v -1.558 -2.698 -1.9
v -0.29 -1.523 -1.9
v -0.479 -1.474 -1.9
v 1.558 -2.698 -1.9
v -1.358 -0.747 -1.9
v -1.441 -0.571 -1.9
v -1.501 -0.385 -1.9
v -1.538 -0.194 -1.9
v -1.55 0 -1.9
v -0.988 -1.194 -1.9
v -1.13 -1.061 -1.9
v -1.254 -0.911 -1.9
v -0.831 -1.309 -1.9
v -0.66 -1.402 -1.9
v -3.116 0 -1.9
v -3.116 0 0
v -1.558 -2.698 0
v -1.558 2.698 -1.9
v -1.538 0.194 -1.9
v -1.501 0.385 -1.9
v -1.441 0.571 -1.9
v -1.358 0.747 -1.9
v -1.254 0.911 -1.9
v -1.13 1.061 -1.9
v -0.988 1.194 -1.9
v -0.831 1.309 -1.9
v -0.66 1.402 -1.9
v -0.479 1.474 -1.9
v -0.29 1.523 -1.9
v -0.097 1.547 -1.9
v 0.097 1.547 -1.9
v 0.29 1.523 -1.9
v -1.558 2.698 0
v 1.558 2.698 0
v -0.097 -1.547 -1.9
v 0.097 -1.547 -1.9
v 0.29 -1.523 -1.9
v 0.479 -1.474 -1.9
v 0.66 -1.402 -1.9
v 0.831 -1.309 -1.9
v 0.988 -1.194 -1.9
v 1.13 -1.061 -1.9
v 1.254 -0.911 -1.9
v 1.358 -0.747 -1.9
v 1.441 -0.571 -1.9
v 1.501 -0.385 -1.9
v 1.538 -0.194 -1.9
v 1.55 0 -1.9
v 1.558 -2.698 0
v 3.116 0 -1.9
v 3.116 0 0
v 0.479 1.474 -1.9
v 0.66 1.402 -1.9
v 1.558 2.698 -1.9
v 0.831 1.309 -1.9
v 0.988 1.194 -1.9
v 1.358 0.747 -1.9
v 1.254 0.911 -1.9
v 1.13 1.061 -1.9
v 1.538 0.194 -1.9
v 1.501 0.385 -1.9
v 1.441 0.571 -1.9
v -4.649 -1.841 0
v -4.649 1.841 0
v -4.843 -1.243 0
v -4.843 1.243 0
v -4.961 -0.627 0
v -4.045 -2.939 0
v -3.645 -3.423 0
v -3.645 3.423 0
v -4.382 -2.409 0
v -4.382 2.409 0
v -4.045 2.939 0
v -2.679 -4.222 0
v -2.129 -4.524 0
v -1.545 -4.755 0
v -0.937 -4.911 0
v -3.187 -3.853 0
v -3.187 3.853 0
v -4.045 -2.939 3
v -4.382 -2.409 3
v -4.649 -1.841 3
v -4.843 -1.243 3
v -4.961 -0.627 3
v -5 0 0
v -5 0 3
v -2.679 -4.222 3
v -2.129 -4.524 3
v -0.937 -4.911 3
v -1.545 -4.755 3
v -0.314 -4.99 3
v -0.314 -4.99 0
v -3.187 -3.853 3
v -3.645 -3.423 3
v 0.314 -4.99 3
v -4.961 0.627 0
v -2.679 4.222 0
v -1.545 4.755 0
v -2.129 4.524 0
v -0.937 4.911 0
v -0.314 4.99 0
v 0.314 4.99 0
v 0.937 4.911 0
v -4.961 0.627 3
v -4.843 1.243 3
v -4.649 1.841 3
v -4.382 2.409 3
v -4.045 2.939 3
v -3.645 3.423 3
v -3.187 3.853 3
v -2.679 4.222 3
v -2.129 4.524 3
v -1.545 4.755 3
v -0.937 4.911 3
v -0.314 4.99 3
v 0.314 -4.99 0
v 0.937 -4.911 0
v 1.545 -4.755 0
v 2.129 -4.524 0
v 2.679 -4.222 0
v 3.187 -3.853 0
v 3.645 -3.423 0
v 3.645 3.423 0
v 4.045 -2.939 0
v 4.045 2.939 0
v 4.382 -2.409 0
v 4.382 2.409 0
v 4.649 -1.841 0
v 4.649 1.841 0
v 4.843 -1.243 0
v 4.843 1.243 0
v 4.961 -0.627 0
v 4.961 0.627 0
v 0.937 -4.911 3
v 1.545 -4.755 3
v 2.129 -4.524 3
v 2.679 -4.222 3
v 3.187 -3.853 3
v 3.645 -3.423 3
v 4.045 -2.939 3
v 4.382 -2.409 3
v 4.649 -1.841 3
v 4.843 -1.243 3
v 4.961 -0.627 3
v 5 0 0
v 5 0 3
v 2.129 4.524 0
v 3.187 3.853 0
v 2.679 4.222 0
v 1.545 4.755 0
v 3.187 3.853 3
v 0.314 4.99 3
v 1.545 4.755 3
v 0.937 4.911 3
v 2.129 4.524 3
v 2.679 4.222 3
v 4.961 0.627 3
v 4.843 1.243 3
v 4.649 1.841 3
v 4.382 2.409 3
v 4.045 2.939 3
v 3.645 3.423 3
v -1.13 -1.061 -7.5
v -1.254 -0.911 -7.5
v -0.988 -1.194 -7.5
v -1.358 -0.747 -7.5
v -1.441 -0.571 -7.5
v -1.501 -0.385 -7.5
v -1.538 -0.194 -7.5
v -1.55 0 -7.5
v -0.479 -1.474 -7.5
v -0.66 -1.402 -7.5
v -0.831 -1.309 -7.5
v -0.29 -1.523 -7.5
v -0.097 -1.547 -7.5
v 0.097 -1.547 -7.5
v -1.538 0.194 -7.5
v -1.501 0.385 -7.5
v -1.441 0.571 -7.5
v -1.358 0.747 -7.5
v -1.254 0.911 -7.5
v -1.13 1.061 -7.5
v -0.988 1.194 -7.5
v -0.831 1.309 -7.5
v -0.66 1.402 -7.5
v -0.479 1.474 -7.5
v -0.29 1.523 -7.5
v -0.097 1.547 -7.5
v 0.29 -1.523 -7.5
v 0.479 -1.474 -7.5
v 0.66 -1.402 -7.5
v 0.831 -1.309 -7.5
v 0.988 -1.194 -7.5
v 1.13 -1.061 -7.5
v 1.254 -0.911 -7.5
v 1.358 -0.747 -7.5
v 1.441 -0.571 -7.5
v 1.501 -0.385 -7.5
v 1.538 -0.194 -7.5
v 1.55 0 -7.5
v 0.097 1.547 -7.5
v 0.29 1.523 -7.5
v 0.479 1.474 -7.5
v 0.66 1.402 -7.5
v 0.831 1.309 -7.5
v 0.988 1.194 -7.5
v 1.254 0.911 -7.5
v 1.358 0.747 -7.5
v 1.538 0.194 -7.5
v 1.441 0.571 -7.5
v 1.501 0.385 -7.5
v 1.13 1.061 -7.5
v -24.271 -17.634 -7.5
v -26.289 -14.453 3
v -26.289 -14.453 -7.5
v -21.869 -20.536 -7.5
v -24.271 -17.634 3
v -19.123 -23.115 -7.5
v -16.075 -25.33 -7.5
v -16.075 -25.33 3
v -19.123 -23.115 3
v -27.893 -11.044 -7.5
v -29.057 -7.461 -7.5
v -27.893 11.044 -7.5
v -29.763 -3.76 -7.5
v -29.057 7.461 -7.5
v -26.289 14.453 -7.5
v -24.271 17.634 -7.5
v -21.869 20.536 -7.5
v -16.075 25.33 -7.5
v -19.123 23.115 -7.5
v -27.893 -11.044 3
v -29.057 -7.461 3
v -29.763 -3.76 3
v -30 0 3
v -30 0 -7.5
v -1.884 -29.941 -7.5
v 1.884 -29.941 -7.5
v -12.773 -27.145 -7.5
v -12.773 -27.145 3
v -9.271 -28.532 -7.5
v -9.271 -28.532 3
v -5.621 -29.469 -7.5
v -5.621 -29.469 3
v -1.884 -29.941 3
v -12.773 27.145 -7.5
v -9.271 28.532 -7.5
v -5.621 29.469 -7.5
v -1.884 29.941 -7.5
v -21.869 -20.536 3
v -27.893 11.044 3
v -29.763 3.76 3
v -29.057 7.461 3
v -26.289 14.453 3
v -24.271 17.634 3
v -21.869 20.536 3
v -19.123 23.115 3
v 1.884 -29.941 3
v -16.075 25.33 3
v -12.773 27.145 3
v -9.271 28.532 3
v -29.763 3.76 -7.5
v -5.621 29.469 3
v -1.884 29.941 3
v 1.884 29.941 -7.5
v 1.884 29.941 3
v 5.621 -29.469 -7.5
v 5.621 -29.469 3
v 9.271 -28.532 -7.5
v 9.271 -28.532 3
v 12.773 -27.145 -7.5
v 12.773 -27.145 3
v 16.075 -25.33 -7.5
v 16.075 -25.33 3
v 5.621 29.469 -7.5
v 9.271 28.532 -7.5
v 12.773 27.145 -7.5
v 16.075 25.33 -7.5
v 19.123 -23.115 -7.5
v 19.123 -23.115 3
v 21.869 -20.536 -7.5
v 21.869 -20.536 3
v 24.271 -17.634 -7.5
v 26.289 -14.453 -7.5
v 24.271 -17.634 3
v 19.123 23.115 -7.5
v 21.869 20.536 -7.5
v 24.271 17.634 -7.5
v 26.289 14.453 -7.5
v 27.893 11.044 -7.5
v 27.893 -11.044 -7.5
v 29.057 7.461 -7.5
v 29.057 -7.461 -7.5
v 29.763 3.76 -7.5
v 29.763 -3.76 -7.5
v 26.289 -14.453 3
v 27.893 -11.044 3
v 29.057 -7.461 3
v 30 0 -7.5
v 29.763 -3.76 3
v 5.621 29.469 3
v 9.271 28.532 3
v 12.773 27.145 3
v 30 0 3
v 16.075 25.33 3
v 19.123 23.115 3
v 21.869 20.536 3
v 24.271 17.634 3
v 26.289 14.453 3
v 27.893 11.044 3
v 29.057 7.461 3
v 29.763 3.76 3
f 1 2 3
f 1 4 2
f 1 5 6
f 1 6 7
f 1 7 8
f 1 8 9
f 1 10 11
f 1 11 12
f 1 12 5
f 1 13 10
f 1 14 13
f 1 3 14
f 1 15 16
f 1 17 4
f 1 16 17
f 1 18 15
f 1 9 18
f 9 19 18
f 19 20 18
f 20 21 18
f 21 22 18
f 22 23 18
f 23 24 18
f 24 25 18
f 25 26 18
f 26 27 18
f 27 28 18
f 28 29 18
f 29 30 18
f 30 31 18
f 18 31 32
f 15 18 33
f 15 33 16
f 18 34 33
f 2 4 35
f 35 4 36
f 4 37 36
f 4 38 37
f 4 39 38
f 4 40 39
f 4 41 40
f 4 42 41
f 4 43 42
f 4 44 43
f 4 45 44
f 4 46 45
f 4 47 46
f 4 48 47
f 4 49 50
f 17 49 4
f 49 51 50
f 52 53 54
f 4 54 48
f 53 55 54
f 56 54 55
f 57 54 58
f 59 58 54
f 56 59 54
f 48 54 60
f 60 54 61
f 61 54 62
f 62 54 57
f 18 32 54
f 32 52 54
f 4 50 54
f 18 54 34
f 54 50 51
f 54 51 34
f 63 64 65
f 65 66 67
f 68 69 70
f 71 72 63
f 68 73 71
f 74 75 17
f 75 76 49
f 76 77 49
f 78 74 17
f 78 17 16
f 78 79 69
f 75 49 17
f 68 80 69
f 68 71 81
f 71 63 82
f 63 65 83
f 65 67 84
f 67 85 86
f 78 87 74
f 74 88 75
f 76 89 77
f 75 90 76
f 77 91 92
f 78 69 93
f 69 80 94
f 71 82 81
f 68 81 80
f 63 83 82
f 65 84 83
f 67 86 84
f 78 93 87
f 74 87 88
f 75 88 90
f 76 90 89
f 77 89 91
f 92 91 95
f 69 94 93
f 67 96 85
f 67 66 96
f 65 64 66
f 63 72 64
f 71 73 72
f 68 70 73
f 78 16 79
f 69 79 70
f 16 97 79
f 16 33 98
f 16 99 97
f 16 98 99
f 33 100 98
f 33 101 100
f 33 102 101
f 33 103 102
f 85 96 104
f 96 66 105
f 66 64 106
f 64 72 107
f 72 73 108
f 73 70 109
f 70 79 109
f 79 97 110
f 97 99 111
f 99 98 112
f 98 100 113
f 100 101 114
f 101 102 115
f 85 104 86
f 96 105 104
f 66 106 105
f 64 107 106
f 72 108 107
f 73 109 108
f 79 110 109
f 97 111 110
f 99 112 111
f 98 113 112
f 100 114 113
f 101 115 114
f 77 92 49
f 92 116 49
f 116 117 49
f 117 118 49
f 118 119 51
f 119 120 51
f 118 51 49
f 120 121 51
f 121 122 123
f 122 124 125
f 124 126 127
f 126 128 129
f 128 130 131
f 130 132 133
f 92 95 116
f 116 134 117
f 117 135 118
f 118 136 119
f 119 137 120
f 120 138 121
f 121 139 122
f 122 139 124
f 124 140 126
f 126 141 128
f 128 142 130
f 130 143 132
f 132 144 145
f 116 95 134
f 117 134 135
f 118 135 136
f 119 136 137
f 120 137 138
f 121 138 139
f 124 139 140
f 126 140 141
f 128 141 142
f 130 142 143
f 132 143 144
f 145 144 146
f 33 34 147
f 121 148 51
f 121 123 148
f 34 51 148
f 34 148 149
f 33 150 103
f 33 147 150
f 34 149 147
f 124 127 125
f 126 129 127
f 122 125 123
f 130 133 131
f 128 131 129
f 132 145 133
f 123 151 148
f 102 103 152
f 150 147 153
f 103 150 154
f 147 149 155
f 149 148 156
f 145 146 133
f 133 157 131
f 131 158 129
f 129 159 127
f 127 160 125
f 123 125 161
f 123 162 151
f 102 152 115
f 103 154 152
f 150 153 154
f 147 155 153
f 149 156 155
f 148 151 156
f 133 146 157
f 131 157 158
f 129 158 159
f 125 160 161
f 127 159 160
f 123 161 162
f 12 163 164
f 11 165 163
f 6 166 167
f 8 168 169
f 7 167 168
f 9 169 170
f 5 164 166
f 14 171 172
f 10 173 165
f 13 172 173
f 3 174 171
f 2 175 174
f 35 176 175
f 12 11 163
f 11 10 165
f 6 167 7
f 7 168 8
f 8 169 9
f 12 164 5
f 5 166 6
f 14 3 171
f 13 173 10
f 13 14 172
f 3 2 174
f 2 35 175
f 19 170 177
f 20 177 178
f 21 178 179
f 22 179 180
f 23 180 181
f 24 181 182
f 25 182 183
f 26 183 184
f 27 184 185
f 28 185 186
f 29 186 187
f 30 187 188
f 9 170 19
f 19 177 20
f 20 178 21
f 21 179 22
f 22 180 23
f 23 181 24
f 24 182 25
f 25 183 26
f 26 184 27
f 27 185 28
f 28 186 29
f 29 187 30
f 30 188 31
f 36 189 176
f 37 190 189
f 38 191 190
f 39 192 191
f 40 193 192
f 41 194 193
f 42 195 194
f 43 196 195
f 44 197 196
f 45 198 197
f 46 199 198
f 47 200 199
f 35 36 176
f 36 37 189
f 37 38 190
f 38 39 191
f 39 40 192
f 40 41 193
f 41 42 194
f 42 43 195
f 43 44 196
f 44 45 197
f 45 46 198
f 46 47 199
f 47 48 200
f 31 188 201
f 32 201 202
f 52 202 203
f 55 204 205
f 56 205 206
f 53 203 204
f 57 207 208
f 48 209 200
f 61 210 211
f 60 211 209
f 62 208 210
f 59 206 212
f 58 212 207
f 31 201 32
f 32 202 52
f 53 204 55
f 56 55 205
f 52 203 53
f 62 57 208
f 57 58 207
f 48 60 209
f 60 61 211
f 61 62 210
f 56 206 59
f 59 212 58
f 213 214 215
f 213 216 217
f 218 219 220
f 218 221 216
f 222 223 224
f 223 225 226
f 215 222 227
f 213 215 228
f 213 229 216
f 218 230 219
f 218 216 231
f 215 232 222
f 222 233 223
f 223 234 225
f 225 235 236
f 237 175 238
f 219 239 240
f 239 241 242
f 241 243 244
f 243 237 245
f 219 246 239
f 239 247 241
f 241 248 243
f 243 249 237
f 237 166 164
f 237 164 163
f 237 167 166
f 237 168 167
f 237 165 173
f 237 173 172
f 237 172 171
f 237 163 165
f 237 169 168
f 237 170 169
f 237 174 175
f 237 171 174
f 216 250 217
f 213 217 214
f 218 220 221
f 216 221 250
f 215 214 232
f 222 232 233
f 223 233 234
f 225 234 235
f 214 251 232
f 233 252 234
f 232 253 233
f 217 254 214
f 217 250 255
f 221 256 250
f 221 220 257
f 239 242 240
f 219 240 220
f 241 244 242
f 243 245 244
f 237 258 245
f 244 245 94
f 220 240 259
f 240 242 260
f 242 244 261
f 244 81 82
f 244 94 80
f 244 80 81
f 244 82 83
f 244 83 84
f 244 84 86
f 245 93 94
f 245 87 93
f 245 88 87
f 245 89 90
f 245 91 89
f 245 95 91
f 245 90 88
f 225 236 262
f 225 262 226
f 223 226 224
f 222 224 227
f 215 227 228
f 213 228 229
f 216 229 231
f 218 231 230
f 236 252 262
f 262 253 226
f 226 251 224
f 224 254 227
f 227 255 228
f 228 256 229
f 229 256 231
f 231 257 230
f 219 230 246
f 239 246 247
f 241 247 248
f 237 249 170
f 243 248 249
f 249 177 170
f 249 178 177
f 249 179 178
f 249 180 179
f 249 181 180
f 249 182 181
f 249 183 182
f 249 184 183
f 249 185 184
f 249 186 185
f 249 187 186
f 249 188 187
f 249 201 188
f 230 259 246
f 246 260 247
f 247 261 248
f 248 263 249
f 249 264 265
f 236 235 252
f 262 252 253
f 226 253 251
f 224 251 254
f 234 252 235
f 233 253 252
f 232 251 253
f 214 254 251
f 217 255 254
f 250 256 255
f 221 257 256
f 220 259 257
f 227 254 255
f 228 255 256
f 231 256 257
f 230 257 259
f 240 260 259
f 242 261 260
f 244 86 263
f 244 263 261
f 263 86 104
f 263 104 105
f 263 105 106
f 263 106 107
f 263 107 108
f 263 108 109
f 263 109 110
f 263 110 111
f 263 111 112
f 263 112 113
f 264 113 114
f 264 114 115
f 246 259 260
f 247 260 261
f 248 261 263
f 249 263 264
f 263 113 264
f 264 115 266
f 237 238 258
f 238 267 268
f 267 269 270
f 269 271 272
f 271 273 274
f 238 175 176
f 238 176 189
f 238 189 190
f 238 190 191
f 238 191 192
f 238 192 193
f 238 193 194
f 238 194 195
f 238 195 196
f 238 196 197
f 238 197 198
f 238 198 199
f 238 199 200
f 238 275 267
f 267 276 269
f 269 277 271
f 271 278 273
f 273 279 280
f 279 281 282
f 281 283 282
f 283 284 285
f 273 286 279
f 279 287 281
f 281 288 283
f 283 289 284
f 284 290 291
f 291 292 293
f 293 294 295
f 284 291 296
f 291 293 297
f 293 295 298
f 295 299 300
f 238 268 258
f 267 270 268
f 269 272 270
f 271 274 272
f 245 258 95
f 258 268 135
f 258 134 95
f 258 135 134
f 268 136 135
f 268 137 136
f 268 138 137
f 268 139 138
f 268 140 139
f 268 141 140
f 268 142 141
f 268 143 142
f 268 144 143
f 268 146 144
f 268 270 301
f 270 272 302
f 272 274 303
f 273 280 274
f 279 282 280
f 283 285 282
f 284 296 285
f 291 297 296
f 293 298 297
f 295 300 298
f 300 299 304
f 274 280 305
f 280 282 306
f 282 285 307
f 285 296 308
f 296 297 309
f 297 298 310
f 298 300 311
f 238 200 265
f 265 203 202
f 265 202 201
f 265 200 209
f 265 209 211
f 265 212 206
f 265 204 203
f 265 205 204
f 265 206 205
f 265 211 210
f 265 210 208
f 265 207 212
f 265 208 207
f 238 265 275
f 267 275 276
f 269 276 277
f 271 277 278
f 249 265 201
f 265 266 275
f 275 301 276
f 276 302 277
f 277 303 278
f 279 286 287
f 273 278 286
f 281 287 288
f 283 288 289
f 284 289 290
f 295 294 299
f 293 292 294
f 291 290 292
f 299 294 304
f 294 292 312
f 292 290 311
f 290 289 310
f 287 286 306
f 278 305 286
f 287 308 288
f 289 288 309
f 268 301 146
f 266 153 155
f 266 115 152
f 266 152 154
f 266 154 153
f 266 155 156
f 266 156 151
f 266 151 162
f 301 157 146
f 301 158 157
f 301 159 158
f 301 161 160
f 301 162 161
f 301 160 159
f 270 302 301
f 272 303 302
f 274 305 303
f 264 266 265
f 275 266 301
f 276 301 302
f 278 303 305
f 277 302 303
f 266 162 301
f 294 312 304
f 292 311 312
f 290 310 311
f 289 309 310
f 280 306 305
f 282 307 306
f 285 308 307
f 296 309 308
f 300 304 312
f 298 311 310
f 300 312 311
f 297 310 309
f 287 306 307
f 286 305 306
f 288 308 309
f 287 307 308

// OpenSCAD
$fn = 50;


difference() {
	union() {
		translate(v = [0, 0, -7.5000000000]) {
			cylinder(h = 10.5000000000, r = 30.0000000000);
		}
	}
	union() {
		translate(v = [0, 0, 0]) {
			rotate(a = [0, 0, 0]) {
				difference() {
					union() {
						translate(v = [0, 0, -1.9000000000]) {
							linear_extrude(height = 1.9000000000) {
								polygon(points = [[3.1158000000, 0.0000000000], [1.5579000000, 2.6983619531], [-1.5579000000, 2.6983619531], [-3.1158000000, 0.0000000000], [-1.5579000000, -2.6983619531], [1.5579000000, -2.6983619531]]);
							}
						}
					}
					union();
				}
			}
		}
		#cylinder(h = 3, r = 5.0000000000);
		#translate(v = [0, 0, -100.0000000000]) {
			cylinder(h = 200, r = 1.5500000000);
		}
	}
}
